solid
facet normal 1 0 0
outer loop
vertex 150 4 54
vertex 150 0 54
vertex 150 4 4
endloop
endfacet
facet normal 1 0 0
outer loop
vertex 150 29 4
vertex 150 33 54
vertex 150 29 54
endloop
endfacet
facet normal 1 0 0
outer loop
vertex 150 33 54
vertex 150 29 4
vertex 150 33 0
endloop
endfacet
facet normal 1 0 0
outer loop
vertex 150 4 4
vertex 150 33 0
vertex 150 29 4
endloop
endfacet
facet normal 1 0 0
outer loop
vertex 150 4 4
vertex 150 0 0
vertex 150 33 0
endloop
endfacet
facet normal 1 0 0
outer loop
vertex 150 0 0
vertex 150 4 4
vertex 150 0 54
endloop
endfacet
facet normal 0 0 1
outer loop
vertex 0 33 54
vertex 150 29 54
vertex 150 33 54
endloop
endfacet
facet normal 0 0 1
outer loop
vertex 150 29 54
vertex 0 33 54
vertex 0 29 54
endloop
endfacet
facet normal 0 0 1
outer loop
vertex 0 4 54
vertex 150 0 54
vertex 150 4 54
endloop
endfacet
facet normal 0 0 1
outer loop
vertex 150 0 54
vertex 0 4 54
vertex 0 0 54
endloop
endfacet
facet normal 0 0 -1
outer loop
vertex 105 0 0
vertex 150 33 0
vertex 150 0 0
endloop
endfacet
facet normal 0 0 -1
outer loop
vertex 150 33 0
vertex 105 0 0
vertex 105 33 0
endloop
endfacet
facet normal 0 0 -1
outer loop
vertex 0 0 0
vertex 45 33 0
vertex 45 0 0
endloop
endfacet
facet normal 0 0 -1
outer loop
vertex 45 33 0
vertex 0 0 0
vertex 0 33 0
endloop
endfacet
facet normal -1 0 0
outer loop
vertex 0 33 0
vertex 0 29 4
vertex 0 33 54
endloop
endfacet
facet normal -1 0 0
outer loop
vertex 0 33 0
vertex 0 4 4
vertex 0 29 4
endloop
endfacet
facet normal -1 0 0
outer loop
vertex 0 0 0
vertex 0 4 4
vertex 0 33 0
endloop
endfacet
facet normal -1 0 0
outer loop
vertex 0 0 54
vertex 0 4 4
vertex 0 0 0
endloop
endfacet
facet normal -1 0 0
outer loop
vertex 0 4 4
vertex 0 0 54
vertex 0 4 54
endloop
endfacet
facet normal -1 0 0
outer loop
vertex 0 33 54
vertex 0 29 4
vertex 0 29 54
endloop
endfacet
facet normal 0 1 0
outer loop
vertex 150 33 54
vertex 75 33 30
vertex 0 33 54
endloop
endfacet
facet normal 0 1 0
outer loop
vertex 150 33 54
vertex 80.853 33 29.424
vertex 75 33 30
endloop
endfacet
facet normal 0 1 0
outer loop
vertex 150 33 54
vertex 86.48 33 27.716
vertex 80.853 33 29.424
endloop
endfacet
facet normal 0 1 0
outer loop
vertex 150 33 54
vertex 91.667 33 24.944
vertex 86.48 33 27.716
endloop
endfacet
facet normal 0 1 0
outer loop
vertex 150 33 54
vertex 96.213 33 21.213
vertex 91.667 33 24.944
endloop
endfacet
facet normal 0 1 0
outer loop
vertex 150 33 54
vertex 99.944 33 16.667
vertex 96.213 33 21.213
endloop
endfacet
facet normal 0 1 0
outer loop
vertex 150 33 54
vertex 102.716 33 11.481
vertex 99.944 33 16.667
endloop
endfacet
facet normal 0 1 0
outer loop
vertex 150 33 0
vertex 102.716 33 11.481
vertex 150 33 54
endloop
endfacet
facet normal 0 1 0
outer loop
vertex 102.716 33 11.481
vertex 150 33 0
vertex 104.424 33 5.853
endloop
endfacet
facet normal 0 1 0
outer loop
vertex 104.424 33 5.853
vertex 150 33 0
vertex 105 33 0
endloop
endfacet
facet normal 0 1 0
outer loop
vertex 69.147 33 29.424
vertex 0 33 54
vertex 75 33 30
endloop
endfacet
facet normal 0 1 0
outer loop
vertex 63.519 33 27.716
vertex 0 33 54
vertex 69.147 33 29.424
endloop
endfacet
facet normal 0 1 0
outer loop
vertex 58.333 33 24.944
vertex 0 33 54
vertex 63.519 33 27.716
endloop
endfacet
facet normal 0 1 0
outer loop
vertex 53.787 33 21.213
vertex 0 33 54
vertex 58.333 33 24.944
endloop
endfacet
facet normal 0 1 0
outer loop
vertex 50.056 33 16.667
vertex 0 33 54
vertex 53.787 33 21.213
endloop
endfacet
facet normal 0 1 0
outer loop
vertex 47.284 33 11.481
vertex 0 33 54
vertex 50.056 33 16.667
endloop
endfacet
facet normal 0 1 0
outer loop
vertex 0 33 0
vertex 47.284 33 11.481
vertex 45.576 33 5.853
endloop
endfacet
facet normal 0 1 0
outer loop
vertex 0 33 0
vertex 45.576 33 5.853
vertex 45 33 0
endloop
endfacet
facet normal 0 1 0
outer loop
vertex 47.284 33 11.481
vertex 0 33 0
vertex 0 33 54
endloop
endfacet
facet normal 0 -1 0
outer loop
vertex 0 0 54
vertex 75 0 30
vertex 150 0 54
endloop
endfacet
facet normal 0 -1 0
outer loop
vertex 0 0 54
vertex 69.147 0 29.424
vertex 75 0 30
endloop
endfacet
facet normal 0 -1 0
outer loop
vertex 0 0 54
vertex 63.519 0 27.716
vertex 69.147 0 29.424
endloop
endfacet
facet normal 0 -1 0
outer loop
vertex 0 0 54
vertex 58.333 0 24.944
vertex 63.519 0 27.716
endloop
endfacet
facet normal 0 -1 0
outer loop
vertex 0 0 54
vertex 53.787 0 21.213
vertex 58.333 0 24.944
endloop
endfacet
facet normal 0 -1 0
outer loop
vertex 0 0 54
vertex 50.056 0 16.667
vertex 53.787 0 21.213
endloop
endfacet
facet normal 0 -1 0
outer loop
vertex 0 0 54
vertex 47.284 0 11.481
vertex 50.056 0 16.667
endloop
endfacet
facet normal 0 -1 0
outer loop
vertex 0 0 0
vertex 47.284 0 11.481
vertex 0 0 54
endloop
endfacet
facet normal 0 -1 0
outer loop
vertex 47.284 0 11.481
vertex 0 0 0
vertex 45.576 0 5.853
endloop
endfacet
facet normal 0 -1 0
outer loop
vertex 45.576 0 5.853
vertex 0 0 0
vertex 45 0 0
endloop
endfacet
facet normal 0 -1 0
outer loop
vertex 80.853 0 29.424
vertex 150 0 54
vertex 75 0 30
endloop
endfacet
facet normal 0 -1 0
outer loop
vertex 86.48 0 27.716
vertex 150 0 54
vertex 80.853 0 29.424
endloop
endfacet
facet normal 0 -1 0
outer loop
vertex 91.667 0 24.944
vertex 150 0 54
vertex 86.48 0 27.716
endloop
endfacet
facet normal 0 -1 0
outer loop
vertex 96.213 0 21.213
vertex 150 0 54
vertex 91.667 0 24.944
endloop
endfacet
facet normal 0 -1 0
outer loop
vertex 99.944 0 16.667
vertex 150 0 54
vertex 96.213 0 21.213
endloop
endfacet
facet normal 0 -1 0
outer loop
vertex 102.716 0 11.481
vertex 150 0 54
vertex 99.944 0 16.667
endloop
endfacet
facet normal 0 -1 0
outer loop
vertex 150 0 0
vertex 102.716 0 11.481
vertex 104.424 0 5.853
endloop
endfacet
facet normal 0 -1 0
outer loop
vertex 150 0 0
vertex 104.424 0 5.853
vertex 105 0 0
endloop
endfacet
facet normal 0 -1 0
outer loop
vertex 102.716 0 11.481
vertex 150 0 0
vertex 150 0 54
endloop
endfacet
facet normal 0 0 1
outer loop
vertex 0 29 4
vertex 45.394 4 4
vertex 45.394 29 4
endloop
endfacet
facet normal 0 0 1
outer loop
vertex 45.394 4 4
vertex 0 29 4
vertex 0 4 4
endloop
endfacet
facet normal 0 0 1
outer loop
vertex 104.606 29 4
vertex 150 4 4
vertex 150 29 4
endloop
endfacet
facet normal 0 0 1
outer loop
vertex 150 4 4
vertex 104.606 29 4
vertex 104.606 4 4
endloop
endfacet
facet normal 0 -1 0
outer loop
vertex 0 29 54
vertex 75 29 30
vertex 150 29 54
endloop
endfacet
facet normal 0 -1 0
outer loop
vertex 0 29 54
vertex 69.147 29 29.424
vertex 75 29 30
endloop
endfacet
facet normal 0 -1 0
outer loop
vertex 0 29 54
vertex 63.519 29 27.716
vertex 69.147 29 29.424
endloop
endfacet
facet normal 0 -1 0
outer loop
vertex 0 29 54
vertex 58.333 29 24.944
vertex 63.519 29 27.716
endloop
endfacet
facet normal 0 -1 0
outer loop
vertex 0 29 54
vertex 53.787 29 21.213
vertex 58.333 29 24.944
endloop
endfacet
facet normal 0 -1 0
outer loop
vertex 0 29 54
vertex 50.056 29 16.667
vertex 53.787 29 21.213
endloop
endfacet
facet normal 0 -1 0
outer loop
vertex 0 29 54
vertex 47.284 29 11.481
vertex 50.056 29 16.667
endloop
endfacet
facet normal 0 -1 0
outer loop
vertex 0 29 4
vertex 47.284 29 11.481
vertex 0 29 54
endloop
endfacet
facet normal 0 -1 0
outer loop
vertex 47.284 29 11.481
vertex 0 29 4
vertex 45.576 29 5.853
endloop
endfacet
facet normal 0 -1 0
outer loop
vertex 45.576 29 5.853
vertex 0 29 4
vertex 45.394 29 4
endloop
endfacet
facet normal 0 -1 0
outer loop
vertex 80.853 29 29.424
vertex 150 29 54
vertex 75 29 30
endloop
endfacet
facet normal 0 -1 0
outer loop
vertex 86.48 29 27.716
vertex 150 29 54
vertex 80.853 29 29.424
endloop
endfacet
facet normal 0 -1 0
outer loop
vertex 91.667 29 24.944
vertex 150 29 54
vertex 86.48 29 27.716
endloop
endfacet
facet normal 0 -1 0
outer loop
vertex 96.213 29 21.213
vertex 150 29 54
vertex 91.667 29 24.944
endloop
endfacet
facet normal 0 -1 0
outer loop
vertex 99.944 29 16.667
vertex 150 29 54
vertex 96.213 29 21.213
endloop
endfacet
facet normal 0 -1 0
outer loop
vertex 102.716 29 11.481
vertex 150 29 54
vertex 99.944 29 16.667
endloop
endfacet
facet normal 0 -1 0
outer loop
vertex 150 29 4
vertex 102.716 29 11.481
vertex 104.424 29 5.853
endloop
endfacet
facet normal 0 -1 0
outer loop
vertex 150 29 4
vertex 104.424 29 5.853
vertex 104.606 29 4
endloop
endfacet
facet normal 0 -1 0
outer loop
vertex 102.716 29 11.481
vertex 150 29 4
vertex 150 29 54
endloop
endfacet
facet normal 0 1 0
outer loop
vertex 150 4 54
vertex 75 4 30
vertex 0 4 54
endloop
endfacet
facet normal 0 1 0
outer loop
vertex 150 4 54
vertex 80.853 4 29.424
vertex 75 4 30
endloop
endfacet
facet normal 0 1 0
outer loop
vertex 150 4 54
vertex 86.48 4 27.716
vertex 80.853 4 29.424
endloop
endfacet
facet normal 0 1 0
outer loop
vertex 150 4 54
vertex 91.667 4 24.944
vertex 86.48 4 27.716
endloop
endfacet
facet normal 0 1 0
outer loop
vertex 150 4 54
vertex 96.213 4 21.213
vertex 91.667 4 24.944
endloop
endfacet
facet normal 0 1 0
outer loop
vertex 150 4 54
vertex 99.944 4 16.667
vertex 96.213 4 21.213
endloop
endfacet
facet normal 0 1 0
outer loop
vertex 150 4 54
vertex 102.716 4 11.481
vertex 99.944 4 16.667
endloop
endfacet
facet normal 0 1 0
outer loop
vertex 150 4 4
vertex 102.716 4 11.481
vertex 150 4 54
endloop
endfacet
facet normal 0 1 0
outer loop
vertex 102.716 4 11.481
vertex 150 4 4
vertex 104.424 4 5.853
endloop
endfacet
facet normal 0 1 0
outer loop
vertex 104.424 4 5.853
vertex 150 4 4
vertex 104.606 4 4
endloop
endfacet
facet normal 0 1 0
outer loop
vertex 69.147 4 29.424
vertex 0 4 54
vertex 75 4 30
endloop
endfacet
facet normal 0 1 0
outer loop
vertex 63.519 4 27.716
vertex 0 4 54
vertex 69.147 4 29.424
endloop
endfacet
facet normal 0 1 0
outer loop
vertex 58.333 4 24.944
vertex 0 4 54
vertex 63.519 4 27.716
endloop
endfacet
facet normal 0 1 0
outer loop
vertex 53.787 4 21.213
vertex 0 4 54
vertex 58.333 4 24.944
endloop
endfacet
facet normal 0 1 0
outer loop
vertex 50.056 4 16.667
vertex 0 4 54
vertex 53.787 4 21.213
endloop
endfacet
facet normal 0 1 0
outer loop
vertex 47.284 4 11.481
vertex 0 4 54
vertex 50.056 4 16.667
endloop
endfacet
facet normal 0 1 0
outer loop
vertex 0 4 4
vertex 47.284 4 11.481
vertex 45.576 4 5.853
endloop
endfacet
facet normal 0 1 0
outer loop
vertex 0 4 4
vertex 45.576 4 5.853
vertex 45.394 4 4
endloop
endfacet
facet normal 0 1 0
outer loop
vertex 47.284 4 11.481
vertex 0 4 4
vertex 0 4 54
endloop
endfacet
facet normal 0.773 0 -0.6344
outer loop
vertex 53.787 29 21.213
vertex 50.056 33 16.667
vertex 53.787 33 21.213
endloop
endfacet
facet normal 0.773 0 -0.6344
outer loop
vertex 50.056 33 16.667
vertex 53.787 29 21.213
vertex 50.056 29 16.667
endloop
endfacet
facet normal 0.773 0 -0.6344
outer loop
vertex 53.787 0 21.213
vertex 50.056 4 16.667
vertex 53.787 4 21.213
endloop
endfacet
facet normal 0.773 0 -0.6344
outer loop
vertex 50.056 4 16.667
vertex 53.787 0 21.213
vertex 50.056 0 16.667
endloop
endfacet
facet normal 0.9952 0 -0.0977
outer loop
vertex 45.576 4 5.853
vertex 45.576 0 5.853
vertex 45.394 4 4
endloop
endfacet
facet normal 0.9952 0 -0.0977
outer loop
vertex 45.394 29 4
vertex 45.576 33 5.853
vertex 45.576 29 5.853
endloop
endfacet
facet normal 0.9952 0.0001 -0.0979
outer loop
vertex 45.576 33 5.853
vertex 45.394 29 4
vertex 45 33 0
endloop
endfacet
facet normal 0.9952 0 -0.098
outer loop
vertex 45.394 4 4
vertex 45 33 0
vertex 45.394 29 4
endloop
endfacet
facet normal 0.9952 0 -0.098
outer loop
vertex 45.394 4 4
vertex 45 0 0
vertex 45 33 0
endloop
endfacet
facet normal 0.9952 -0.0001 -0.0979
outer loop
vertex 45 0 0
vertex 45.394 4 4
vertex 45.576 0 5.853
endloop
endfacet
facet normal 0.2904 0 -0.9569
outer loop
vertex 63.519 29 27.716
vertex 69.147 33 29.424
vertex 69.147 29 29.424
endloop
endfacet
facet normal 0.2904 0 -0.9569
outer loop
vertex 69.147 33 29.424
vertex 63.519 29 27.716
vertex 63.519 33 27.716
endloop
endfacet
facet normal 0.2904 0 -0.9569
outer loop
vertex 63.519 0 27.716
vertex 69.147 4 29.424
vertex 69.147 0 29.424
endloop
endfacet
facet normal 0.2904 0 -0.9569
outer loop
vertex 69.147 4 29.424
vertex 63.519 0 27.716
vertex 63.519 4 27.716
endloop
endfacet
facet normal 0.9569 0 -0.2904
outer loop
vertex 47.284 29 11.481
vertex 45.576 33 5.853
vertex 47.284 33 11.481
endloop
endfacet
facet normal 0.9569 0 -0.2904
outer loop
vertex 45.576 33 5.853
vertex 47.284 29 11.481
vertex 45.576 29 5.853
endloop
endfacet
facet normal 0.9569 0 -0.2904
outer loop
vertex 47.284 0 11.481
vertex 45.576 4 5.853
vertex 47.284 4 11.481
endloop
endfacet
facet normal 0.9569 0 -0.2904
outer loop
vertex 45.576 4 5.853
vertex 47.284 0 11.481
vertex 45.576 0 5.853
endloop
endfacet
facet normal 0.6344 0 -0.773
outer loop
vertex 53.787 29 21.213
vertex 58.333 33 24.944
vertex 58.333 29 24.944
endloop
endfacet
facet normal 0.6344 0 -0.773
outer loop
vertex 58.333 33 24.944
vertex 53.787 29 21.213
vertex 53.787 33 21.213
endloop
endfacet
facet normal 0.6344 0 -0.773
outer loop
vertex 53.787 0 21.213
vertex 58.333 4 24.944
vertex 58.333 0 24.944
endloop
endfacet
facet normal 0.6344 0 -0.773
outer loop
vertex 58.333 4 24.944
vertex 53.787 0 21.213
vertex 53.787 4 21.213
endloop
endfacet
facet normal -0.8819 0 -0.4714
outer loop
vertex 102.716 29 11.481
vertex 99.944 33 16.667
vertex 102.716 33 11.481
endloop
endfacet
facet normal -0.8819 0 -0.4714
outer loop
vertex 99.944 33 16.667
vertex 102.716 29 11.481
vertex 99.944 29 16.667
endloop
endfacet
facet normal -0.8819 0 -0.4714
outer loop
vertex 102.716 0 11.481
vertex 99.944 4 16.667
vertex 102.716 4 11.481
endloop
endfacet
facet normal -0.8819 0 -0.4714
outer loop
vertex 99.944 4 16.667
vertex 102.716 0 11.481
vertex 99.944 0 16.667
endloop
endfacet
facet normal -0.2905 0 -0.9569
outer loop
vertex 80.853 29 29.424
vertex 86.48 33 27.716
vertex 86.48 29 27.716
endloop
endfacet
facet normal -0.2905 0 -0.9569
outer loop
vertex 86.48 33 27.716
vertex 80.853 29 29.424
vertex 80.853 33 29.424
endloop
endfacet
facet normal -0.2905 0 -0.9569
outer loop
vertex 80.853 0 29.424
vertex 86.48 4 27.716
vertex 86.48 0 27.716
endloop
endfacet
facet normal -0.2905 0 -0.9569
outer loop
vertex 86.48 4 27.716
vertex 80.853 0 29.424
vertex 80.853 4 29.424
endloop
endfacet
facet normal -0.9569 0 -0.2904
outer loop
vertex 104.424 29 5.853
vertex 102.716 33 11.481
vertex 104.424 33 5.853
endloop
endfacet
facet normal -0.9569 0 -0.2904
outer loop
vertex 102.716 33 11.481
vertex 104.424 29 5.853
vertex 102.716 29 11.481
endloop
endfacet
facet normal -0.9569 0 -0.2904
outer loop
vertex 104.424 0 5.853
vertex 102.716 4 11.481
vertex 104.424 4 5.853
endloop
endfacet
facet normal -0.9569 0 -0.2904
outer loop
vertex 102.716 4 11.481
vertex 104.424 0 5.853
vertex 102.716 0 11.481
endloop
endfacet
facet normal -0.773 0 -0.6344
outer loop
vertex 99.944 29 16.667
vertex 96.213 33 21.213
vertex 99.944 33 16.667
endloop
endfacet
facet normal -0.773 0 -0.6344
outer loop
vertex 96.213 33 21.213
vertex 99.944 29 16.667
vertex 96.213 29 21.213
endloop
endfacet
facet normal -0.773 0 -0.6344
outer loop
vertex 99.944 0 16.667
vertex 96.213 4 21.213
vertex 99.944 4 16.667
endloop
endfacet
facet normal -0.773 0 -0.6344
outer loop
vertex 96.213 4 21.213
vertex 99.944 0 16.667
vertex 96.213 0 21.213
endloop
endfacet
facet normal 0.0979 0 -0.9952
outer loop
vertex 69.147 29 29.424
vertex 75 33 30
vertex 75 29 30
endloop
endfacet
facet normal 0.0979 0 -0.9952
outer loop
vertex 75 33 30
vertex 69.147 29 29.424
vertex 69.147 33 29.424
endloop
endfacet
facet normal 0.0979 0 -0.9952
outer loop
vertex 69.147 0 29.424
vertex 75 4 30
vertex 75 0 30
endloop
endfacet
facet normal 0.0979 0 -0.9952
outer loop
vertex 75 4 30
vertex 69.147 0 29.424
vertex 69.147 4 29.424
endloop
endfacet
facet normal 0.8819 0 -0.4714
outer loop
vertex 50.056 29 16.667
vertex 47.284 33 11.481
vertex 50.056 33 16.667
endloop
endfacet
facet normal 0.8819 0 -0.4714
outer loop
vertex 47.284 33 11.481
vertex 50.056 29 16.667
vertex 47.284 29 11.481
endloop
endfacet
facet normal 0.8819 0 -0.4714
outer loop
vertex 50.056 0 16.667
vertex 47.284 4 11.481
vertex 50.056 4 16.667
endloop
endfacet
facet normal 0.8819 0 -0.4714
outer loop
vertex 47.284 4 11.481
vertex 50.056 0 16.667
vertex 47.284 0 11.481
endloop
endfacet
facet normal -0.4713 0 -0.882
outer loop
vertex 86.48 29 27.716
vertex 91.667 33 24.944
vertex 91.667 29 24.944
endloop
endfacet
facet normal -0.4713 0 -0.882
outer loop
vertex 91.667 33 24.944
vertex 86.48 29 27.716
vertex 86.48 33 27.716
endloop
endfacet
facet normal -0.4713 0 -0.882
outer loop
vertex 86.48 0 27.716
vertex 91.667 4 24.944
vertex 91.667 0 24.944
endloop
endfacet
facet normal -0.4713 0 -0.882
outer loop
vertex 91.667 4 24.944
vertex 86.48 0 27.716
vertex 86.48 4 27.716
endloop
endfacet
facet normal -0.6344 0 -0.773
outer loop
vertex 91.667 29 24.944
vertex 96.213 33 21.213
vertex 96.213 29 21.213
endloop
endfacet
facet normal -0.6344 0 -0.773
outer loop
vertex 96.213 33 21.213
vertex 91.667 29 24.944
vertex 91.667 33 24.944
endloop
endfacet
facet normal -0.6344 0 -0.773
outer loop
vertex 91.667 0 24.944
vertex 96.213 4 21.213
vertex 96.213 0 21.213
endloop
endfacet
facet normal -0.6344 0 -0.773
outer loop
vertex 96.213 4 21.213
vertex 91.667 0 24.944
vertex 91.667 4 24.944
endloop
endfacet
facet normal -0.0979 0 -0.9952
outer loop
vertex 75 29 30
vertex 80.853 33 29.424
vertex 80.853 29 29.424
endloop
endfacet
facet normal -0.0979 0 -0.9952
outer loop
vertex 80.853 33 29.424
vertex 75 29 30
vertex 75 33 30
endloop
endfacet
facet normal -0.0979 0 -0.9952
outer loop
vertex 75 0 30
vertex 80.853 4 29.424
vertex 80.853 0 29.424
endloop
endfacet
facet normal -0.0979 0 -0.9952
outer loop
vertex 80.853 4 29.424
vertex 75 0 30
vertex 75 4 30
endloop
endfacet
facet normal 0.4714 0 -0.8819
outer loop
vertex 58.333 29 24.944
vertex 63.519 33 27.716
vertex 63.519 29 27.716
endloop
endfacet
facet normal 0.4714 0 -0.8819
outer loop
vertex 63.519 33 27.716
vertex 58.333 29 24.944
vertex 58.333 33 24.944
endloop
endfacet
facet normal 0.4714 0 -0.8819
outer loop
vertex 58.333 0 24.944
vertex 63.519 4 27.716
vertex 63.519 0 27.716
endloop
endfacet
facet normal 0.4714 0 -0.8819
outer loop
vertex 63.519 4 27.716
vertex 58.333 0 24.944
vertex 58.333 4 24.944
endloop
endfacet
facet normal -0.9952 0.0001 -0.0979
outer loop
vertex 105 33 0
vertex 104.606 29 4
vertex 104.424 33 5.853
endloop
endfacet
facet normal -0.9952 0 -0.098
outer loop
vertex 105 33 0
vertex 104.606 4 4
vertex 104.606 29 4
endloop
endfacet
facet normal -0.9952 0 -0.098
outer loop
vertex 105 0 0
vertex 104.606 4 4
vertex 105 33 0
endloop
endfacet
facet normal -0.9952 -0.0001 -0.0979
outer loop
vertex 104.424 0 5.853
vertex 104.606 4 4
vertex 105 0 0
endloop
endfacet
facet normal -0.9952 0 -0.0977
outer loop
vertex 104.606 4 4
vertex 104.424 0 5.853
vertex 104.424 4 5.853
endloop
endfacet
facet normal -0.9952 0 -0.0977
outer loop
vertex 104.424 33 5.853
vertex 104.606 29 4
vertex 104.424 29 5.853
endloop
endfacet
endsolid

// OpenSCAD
length=150;
internalWidth=12+4*2+5;
height=50;
thickness=4;
error=0.001;


difference() {
	cube([length, internalWidth+2*thickness, height+thickness]);
	translate([-error,thickness, thickness]) 
  	cube([length+2*error, internalWidth, height+error]);
  translate([length/2,-thickness,0])
		rotate([0, 90, 90])
		  cylinder(r=30, h=height+2*thickness, $fn=32);
		

}
